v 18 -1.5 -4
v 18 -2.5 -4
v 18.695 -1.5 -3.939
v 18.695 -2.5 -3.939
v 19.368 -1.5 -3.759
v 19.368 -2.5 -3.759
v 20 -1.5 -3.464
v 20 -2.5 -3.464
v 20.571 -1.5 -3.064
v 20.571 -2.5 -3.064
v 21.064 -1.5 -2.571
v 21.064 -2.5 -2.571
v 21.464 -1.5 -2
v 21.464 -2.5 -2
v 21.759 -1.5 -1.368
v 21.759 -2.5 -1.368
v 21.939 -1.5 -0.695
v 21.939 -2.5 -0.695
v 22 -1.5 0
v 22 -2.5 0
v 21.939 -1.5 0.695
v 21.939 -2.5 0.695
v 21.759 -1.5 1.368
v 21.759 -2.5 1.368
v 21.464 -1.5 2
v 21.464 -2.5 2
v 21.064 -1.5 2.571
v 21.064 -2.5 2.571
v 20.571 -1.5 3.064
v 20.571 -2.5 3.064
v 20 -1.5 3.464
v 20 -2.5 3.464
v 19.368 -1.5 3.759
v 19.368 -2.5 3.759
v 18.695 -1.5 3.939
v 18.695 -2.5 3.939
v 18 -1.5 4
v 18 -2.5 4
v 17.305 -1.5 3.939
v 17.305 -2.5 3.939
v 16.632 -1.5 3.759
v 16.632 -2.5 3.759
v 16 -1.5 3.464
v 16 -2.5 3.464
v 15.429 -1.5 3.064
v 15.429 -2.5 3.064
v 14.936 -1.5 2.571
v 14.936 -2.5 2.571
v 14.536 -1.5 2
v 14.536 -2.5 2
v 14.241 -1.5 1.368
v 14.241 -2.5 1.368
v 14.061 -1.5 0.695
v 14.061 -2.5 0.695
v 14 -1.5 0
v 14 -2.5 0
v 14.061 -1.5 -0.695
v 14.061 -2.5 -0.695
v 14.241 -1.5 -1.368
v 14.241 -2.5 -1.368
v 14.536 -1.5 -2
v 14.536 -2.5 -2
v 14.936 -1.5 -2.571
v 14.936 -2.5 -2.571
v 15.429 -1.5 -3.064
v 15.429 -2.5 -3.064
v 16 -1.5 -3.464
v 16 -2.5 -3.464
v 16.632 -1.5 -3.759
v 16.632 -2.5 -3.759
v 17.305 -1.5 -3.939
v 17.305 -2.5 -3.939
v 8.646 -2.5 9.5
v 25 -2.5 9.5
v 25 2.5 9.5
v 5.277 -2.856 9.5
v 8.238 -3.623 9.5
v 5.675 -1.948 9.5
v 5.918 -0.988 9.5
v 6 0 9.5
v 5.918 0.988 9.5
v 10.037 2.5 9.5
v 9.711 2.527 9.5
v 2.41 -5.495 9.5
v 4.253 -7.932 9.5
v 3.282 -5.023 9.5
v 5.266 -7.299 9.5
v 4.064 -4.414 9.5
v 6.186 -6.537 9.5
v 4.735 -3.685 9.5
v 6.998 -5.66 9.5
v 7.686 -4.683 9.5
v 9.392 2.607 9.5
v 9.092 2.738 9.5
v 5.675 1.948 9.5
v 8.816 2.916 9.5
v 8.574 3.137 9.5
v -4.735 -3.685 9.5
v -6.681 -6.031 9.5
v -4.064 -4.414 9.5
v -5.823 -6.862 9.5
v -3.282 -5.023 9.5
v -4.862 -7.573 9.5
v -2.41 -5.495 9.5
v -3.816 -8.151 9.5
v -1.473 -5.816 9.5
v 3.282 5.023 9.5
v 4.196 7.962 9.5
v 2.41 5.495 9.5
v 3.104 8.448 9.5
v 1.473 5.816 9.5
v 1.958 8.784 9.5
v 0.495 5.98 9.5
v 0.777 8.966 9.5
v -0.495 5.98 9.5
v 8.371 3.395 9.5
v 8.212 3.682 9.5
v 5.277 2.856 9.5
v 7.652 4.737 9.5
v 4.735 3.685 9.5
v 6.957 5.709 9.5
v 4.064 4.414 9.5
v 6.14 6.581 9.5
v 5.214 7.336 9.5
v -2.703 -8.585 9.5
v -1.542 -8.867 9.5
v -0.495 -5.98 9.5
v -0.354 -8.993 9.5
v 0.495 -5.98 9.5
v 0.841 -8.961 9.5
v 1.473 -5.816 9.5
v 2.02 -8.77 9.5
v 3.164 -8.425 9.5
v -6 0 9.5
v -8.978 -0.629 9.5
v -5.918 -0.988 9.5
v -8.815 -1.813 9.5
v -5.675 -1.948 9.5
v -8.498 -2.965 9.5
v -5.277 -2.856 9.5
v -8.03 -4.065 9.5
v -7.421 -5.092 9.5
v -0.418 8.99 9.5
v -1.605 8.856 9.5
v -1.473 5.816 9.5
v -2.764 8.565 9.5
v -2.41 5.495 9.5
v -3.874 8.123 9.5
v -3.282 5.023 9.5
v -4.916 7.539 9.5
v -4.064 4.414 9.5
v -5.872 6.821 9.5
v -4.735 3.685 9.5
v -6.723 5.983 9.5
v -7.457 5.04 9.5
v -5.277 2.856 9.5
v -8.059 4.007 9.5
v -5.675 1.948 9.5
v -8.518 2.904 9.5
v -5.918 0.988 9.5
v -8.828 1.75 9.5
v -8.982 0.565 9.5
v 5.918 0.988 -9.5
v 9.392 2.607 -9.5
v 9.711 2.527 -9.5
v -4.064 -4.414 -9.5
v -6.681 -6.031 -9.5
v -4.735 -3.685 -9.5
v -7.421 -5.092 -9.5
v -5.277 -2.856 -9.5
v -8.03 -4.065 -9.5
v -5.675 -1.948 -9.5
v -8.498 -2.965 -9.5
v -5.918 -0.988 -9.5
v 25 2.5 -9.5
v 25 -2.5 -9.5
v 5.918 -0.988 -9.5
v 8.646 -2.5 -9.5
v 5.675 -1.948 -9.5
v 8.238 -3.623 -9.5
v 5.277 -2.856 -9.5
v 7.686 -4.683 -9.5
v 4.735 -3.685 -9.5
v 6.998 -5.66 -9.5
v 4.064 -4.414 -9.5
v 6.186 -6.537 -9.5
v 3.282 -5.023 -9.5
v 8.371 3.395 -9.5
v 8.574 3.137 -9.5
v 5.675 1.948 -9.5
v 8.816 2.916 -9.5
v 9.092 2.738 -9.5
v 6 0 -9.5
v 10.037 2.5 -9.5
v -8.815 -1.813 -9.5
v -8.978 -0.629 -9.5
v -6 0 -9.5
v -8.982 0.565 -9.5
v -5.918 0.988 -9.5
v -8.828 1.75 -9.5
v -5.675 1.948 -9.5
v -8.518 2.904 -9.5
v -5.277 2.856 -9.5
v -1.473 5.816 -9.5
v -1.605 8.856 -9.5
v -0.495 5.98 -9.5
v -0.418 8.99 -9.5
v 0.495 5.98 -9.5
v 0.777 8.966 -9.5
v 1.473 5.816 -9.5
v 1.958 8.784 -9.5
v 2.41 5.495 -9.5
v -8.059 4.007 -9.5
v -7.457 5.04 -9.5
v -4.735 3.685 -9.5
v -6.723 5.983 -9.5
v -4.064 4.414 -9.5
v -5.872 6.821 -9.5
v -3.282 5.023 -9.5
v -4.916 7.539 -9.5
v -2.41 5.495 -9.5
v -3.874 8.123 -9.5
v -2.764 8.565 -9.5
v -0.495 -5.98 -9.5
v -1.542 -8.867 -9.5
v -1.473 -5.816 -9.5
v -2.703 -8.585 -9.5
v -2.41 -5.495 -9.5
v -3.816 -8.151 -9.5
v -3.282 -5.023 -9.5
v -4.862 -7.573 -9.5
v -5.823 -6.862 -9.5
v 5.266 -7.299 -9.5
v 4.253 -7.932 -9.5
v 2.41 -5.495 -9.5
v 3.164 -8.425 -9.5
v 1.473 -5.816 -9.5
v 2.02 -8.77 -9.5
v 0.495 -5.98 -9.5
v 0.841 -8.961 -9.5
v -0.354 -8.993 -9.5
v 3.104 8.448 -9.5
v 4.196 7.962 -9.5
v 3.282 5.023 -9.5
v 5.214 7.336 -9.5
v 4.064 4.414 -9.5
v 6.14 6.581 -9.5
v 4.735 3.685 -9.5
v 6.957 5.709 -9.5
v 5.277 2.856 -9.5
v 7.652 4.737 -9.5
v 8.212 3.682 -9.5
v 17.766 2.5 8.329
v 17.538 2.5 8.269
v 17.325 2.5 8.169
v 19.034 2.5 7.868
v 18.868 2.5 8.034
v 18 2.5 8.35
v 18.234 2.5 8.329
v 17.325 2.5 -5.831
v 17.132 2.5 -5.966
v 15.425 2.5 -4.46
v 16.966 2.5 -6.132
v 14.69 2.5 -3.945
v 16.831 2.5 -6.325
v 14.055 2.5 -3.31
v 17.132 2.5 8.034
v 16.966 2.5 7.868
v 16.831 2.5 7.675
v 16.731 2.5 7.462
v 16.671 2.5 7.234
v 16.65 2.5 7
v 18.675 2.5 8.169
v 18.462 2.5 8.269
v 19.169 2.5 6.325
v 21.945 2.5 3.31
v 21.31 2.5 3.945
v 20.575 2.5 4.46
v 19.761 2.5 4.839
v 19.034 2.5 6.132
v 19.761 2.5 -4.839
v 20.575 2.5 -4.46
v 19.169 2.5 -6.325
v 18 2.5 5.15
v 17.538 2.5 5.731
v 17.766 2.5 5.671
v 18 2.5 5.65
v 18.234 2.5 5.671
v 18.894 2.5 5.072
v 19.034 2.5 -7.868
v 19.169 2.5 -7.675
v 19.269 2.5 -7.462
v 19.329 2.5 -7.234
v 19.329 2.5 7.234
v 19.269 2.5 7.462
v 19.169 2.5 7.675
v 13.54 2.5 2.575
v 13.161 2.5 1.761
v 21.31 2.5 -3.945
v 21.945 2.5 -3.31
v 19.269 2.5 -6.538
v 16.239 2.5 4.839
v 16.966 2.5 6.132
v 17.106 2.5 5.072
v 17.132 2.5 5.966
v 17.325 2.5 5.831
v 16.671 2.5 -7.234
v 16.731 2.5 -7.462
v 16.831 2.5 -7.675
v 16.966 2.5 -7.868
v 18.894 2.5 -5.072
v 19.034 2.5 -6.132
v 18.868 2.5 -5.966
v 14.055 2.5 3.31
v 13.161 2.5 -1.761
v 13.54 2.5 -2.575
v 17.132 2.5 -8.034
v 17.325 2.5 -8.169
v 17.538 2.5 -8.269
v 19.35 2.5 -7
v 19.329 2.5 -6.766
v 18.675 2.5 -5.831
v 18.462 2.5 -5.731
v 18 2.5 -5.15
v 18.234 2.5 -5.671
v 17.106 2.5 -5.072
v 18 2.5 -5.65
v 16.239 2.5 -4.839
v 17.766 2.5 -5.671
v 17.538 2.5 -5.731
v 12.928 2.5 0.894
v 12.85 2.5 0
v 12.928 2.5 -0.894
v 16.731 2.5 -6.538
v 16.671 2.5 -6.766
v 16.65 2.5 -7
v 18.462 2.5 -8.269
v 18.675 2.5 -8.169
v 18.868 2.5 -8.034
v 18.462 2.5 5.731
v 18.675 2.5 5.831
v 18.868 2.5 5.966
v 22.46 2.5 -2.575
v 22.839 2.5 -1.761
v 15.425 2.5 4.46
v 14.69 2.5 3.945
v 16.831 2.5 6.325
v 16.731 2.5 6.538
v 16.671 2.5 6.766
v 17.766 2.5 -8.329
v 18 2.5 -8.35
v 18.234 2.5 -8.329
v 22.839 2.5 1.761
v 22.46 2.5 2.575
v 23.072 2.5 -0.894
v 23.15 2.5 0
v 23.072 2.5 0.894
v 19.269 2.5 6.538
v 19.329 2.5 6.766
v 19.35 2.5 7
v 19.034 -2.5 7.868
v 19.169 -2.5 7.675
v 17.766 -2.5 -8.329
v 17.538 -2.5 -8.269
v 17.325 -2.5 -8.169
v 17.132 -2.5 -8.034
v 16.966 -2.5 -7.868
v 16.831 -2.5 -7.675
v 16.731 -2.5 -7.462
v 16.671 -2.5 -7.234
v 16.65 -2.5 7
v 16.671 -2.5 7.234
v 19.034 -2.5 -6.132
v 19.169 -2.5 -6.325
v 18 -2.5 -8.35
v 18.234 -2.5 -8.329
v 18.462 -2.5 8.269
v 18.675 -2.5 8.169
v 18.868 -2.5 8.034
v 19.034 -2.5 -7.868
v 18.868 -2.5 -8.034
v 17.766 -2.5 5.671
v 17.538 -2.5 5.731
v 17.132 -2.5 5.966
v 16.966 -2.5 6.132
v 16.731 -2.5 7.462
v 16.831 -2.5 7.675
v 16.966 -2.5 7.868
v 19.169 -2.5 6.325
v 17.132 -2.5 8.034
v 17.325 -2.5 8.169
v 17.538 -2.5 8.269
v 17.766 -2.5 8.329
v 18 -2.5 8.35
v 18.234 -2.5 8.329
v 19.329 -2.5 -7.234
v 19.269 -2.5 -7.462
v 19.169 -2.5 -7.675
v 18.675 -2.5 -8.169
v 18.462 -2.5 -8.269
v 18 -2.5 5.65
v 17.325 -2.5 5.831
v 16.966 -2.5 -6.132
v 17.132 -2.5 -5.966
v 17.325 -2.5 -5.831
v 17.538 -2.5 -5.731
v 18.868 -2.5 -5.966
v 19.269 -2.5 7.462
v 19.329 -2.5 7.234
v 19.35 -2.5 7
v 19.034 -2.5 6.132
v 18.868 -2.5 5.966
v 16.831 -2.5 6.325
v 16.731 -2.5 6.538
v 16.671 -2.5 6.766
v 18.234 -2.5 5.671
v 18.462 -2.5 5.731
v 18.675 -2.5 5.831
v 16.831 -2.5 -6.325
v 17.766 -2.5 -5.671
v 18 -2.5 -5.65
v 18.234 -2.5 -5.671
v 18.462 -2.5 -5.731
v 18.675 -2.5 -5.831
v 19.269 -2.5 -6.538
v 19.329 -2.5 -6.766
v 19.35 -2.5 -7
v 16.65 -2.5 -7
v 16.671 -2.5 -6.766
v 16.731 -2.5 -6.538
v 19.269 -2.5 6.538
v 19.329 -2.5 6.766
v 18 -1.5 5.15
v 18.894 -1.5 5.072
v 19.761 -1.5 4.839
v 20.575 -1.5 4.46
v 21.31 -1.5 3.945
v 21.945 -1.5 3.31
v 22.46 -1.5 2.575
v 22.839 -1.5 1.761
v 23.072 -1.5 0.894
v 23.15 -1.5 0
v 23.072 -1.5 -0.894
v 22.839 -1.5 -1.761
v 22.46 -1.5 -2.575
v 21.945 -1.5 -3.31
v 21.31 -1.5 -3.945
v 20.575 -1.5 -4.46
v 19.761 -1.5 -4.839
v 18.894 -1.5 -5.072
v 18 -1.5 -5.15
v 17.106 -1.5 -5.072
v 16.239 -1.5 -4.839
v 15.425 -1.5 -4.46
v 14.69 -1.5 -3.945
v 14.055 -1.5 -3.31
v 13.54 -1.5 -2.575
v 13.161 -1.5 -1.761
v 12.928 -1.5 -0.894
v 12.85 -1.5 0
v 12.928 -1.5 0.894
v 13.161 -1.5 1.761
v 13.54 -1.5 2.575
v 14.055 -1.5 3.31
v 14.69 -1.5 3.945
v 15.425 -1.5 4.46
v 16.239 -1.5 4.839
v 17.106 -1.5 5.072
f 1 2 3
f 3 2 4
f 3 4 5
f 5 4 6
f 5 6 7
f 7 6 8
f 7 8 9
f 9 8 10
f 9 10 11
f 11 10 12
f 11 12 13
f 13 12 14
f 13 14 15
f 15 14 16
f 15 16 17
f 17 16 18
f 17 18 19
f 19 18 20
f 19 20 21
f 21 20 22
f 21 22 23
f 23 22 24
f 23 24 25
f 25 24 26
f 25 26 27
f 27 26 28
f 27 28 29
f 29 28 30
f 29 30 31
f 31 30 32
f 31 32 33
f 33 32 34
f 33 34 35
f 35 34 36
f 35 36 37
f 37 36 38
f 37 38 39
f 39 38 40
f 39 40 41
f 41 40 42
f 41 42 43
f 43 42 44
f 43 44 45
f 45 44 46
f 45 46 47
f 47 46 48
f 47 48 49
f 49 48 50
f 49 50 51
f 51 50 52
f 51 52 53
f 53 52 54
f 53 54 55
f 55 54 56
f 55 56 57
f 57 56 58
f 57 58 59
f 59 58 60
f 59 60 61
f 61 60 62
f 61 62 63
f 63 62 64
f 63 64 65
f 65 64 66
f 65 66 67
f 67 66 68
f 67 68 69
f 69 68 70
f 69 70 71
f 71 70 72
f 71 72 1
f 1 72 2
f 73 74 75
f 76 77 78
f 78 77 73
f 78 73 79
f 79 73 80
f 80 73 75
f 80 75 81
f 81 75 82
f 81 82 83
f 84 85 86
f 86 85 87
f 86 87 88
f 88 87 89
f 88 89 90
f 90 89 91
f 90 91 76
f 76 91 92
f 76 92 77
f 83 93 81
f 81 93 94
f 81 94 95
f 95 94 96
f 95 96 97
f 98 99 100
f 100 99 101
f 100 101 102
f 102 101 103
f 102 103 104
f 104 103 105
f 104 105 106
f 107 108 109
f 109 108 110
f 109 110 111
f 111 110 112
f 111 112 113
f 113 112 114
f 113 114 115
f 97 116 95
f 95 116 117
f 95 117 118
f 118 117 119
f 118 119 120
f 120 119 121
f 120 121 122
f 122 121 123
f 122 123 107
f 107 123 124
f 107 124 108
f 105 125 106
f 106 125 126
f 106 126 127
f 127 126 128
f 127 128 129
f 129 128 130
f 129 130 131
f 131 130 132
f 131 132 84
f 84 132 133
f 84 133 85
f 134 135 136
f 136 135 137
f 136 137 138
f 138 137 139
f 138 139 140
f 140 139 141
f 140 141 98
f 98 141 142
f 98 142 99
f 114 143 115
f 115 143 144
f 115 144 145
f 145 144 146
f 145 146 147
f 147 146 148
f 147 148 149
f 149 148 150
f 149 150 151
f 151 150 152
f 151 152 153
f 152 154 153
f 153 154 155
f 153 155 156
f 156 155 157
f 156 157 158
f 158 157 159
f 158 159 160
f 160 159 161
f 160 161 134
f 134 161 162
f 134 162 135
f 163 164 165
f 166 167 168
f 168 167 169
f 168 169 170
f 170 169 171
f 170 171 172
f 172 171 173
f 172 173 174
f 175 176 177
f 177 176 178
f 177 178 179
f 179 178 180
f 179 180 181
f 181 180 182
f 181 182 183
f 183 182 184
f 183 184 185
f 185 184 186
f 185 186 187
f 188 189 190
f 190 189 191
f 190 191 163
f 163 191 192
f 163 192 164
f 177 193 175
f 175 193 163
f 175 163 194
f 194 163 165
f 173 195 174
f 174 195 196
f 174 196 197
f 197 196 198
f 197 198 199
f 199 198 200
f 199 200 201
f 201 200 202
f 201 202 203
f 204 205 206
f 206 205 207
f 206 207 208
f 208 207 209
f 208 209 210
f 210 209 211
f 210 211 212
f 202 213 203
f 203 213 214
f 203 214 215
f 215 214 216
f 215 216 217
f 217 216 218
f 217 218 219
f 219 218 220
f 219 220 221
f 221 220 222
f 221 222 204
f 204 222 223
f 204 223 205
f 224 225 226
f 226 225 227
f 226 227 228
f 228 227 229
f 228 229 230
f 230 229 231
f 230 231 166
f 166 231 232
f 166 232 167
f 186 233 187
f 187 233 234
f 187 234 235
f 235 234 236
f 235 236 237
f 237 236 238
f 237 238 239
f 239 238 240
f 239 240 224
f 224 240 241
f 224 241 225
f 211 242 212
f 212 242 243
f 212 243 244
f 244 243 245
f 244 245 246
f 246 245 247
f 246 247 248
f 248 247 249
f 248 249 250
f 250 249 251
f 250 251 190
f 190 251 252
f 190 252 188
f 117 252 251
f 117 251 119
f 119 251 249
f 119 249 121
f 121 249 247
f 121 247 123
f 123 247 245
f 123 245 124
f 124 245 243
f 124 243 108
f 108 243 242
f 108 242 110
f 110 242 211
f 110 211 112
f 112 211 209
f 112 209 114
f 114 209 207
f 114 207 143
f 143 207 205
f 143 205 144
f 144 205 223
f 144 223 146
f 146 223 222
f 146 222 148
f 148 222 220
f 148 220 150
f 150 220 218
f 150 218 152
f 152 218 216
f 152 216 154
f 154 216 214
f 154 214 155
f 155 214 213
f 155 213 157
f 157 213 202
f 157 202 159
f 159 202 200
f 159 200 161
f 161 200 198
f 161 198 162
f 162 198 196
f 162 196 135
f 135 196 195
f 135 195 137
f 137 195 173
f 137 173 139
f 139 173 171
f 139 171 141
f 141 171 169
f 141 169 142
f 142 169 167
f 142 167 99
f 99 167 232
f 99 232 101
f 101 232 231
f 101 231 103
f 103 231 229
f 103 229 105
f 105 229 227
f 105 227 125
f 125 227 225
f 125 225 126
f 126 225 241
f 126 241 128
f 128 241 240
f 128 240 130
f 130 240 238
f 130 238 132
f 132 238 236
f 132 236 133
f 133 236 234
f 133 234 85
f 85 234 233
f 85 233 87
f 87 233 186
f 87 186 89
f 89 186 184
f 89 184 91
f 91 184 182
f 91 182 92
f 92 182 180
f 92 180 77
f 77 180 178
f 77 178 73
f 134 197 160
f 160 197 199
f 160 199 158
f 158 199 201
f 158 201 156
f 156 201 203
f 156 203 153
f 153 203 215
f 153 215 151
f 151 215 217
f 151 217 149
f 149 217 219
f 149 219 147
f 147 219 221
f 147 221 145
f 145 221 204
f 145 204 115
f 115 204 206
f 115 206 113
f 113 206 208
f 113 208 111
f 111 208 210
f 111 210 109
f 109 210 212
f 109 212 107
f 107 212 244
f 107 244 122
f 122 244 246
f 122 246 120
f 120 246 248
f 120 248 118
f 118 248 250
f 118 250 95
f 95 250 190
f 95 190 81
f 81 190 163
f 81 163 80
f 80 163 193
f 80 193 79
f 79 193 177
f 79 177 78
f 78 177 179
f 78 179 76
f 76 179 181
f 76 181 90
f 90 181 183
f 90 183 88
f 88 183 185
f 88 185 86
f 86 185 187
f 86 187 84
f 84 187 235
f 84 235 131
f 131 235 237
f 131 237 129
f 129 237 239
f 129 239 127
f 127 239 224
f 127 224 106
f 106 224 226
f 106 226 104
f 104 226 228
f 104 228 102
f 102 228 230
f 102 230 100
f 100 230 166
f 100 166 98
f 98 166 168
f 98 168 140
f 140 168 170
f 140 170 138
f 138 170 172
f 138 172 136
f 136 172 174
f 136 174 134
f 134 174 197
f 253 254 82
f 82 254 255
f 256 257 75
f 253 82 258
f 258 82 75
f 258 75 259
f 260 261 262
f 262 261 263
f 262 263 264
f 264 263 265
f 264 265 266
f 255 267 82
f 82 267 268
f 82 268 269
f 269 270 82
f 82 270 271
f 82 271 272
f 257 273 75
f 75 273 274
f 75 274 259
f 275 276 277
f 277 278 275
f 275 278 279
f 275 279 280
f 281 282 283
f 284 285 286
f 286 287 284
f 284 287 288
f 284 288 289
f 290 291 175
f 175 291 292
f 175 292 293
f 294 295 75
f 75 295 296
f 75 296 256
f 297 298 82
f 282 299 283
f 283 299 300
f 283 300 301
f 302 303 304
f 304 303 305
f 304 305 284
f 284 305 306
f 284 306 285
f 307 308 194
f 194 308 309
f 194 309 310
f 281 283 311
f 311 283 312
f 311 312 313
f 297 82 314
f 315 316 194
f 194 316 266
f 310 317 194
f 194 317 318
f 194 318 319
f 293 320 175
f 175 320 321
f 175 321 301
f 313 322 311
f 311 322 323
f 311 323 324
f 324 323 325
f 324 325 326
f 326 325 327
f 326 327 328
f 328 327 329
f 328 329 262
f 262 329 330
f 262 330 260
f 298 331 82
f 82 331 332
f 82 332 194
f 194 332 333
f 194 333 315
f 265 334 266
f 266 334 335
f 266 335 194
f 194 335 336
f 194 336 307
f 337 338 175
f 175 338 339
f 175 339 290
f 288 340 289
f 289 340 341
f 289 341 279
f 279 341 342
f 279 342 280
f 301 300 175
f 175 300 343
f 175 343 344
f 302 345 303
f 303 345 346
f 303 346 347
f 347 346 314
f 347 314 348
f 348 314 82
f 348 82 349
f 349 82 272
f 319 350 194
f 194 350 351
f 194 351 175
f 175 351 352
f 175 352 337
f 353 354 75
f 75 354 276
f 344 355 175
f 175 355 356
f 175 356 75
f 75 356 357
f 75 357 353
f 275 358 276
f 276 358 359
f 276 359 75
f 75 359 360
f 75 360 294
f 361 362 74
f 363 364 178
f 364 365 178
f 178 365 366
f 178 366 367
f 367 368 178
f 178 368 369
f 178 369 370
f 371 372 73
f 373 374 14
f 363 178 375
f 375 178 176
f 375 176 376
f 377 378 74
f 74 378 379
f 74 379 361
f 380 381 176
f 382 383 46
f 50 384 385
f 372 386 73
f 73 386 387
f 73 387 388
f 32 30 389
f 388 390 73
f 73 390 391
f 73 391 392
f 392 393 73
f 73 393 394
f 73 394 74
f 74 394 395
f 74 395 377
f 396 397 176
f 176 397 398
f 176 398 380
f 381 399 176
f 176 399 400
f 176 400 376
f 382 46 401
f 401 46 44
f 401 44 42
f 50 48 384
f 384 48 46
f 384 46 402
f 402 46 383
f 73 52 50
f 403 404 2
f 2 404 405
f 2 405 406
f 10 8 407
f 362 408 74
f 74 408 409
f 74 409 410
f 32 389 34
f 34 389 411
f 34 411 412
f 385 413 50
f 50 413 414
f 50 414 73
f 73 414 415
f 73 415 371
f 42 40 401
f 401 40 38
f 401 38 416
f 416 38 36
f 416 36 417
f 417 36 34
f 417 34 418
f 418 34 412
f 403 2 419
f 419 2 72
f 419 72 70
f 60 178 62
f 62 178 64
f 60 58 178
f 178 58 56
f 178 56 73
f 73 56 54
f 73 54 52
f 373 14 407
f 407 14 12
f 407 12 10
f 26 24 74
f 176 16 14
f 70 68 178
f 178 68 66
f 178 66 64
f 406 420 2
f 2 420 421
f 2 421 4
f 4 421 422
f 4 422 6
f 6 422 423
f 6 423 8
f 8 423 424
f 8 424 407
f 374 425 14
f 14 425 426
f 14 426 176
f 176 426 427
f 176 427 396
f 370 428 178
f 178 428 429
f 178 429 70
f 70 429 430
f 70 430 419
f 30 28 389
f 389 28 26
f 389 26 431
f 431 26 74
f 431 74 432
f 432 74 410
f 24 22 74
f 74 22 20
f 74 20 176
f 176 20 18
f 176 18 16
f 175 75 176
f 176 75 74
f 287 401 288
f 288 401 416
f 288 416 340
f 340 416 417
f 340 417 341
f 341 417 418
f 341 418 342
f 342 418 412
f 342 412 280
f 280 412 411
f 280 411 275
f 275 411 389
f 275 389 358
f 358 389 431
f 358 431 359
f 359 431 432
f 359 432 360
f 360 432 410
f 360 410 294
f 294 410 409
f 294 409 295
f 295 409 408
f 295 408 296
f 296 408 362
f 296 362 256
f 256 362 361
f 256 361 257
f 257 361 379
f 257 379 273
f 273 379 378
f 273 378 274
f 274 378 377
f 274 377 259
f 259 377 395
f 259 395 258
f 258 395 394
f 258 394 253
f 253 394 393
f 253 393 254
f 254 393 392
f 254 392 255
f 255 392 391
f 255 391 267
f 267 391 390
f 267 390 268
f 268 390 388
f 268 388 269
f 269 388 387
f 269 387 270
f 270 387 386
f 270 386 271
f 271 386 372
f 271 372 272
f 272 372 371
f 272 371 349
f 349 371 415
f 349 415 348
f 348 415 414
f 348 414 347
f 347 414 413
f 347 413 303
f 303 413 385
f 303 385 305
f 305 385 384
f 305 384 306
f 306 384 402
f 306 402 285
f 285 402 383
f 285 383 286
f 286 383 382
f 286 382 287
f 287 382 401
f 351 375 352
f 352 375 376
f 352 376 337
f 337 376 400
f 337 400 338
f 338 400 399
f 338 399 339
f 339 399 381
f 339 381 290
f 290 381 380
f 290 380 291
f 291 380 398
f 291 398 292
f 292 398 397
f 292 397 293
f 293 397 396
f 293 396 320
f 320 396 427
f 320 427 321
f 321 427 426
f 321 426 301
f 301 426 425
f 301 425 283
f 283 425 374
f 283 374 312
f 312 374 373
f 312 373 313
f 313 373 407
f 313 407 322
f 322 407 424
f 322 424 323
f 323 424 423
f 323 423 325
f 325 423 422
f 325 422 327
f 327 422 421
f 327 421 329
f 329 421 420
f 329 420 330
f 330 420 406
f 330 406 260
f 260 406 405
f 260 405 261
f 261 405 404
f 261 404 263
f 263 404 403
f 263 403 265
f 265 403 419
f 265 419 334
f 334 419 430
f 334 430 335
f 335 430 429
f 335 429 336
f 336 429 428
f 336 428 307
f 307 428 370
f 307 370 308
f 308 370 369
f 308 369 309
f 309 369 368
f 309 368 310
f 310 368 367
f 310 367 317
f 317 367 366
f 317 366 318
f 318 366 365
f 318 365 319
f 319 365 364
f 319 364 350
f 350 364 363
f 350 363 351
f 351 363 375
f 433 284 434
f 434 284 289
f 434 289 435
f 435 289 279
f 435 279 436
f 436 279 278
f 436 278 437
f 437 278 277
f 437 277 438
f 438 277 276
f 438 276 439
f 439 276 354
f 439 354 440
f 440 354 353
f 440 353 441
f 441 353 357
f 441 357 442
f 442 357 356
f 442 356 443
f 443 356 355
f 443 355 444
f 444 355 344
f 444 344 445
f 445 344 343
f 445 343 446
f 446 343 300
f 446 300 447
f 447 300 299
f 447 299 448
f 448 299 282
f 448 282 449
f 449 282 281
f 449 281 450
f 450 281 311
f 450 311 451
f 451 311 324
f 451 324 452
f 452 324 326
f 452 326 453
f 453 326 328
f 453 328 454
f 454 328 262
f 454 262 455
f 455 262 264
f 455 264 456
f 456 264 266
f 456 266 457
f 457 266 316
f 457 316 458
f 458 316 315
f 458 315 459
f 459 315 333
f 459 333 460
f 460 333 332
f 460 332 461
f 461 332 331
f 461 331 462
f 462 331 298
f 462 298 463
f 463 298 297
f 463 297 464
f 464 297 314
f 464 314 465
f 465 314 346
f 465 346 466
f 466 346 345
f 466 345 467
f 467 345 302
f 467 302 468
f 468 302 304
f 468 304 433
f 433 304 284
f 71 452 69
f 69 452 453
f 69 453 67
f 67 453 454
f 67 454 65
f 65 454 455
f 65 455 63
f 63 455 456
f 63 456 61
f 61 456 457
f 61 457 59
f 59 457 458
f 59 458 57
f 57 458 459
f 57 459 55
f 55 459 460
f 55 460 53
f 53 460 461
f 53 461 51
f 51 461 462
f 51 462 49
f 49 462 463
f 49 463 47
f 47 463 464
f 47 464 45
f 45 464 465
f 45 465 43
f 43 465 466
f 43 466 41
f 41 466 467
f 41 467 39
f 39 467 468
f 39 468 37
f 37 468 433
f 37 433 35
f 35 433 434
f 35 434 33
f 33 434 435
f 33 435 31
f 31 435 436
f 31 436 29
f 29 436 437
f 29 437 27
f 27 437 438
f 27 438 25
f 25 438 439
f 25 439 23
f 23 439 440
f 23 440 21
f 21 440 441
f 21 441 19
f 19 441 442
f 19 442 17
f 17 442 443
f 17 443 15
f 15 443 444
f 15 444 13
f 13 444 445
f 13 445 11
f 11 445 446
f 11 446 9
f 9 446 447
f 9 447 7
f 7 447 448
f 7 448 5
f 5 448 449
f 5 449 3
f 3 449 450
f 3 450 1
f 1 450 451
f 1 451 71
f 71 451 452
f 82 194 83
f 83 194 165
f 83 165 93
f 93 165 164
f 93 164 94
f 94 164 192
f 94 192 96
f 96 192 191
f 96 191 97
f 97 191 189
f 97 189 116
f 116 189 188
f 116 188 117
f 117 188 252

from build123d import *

# Parameters (mm, degrees)
SKETCH1_R                  = 9
SKETCH1_R_2                = 6
MAIN_DEPTH                 = 9.5
SKETCH2_W                  = 25
SKETCH2_H                  = 19
SKETCH2_R                  = 4
SKETCH2_R_2                = 1.35
BALLSUPPORTEXTRUSION_DEPTH = 2.5
SKETCH3_R                  = 5.15
BALLSUPPORTHOLE_DEPTH      = 4
FILLET2_R                  = 2
SKETCH5_R                  = 6
CUT_EXTRUDE2_DEPTH         = 20


with BuildPart() as part:
    # Sketch1 → Main (new body, symmetric)
    with BuildSketch(Plane.XY):
        Circle(SKETCH1_R)
        Circle(SKETCH1_R_2, mode=Mode.SUBTRACT)
    extrude(amount=MAIN_DEPTH, both=True)

    # Sketch2 → BallSupportExtrusion (add, symmetric)
    with BuildSketch(Plane(origin=(0, 0, 0), x_dir=(1, 0, 0), z_dir=(0, 1, 0))):
        with Locations((12.5, 0)):
            Rectangle(SKETCH2_W, SKETCH2_H)
        with Locations((18, 0)):
            Circle(SKETCH2_R, mode=Mode.SUBTRACT)
        with Locations((18, 7)):
            Circle(SKETCH2_R_2, mode=Mode.SUBTRACT)
        with Locations((18, -7)):
            Circle(SKETCH2_R_2, mode=Mode.SUBTRACT)
    extrude(amount=BALLSUPPORTEXTRUSION_DEPTH, both=True)

    # Sketch3 → BallSupportHole (cut)
    with BuildSketch(Plane(origin=(0, 2.5, 0), x_dir=(1, 0, 0), z_dir=(0, 1, 0))):
        with Locations((18, 0)):
            Circle(SKETCH3_R)
    extrude(amount=-BALLSUPPORTHOLE_DEPTH, mode=Mode.SUBTRACT)

    # Fillet2
    fillet2_edges = [part.edges().sort_by_distance(p)[0] for p in [
        (8.645808233, 2.5, 0),
    ]]
    fillet(fillet2_edges, radius=FILLET2_R)

    # Sketch5 → Cut-Extrude2 (cut, through all)
    with BuildSketch(Plane.XY.offset(9.5)):
        Circle(SKETCH5_R)
    extrude(amount=-CUT_EXTRUDE2_DEPTH, mode=Mode.SUBTRACT)


solid = part.part
